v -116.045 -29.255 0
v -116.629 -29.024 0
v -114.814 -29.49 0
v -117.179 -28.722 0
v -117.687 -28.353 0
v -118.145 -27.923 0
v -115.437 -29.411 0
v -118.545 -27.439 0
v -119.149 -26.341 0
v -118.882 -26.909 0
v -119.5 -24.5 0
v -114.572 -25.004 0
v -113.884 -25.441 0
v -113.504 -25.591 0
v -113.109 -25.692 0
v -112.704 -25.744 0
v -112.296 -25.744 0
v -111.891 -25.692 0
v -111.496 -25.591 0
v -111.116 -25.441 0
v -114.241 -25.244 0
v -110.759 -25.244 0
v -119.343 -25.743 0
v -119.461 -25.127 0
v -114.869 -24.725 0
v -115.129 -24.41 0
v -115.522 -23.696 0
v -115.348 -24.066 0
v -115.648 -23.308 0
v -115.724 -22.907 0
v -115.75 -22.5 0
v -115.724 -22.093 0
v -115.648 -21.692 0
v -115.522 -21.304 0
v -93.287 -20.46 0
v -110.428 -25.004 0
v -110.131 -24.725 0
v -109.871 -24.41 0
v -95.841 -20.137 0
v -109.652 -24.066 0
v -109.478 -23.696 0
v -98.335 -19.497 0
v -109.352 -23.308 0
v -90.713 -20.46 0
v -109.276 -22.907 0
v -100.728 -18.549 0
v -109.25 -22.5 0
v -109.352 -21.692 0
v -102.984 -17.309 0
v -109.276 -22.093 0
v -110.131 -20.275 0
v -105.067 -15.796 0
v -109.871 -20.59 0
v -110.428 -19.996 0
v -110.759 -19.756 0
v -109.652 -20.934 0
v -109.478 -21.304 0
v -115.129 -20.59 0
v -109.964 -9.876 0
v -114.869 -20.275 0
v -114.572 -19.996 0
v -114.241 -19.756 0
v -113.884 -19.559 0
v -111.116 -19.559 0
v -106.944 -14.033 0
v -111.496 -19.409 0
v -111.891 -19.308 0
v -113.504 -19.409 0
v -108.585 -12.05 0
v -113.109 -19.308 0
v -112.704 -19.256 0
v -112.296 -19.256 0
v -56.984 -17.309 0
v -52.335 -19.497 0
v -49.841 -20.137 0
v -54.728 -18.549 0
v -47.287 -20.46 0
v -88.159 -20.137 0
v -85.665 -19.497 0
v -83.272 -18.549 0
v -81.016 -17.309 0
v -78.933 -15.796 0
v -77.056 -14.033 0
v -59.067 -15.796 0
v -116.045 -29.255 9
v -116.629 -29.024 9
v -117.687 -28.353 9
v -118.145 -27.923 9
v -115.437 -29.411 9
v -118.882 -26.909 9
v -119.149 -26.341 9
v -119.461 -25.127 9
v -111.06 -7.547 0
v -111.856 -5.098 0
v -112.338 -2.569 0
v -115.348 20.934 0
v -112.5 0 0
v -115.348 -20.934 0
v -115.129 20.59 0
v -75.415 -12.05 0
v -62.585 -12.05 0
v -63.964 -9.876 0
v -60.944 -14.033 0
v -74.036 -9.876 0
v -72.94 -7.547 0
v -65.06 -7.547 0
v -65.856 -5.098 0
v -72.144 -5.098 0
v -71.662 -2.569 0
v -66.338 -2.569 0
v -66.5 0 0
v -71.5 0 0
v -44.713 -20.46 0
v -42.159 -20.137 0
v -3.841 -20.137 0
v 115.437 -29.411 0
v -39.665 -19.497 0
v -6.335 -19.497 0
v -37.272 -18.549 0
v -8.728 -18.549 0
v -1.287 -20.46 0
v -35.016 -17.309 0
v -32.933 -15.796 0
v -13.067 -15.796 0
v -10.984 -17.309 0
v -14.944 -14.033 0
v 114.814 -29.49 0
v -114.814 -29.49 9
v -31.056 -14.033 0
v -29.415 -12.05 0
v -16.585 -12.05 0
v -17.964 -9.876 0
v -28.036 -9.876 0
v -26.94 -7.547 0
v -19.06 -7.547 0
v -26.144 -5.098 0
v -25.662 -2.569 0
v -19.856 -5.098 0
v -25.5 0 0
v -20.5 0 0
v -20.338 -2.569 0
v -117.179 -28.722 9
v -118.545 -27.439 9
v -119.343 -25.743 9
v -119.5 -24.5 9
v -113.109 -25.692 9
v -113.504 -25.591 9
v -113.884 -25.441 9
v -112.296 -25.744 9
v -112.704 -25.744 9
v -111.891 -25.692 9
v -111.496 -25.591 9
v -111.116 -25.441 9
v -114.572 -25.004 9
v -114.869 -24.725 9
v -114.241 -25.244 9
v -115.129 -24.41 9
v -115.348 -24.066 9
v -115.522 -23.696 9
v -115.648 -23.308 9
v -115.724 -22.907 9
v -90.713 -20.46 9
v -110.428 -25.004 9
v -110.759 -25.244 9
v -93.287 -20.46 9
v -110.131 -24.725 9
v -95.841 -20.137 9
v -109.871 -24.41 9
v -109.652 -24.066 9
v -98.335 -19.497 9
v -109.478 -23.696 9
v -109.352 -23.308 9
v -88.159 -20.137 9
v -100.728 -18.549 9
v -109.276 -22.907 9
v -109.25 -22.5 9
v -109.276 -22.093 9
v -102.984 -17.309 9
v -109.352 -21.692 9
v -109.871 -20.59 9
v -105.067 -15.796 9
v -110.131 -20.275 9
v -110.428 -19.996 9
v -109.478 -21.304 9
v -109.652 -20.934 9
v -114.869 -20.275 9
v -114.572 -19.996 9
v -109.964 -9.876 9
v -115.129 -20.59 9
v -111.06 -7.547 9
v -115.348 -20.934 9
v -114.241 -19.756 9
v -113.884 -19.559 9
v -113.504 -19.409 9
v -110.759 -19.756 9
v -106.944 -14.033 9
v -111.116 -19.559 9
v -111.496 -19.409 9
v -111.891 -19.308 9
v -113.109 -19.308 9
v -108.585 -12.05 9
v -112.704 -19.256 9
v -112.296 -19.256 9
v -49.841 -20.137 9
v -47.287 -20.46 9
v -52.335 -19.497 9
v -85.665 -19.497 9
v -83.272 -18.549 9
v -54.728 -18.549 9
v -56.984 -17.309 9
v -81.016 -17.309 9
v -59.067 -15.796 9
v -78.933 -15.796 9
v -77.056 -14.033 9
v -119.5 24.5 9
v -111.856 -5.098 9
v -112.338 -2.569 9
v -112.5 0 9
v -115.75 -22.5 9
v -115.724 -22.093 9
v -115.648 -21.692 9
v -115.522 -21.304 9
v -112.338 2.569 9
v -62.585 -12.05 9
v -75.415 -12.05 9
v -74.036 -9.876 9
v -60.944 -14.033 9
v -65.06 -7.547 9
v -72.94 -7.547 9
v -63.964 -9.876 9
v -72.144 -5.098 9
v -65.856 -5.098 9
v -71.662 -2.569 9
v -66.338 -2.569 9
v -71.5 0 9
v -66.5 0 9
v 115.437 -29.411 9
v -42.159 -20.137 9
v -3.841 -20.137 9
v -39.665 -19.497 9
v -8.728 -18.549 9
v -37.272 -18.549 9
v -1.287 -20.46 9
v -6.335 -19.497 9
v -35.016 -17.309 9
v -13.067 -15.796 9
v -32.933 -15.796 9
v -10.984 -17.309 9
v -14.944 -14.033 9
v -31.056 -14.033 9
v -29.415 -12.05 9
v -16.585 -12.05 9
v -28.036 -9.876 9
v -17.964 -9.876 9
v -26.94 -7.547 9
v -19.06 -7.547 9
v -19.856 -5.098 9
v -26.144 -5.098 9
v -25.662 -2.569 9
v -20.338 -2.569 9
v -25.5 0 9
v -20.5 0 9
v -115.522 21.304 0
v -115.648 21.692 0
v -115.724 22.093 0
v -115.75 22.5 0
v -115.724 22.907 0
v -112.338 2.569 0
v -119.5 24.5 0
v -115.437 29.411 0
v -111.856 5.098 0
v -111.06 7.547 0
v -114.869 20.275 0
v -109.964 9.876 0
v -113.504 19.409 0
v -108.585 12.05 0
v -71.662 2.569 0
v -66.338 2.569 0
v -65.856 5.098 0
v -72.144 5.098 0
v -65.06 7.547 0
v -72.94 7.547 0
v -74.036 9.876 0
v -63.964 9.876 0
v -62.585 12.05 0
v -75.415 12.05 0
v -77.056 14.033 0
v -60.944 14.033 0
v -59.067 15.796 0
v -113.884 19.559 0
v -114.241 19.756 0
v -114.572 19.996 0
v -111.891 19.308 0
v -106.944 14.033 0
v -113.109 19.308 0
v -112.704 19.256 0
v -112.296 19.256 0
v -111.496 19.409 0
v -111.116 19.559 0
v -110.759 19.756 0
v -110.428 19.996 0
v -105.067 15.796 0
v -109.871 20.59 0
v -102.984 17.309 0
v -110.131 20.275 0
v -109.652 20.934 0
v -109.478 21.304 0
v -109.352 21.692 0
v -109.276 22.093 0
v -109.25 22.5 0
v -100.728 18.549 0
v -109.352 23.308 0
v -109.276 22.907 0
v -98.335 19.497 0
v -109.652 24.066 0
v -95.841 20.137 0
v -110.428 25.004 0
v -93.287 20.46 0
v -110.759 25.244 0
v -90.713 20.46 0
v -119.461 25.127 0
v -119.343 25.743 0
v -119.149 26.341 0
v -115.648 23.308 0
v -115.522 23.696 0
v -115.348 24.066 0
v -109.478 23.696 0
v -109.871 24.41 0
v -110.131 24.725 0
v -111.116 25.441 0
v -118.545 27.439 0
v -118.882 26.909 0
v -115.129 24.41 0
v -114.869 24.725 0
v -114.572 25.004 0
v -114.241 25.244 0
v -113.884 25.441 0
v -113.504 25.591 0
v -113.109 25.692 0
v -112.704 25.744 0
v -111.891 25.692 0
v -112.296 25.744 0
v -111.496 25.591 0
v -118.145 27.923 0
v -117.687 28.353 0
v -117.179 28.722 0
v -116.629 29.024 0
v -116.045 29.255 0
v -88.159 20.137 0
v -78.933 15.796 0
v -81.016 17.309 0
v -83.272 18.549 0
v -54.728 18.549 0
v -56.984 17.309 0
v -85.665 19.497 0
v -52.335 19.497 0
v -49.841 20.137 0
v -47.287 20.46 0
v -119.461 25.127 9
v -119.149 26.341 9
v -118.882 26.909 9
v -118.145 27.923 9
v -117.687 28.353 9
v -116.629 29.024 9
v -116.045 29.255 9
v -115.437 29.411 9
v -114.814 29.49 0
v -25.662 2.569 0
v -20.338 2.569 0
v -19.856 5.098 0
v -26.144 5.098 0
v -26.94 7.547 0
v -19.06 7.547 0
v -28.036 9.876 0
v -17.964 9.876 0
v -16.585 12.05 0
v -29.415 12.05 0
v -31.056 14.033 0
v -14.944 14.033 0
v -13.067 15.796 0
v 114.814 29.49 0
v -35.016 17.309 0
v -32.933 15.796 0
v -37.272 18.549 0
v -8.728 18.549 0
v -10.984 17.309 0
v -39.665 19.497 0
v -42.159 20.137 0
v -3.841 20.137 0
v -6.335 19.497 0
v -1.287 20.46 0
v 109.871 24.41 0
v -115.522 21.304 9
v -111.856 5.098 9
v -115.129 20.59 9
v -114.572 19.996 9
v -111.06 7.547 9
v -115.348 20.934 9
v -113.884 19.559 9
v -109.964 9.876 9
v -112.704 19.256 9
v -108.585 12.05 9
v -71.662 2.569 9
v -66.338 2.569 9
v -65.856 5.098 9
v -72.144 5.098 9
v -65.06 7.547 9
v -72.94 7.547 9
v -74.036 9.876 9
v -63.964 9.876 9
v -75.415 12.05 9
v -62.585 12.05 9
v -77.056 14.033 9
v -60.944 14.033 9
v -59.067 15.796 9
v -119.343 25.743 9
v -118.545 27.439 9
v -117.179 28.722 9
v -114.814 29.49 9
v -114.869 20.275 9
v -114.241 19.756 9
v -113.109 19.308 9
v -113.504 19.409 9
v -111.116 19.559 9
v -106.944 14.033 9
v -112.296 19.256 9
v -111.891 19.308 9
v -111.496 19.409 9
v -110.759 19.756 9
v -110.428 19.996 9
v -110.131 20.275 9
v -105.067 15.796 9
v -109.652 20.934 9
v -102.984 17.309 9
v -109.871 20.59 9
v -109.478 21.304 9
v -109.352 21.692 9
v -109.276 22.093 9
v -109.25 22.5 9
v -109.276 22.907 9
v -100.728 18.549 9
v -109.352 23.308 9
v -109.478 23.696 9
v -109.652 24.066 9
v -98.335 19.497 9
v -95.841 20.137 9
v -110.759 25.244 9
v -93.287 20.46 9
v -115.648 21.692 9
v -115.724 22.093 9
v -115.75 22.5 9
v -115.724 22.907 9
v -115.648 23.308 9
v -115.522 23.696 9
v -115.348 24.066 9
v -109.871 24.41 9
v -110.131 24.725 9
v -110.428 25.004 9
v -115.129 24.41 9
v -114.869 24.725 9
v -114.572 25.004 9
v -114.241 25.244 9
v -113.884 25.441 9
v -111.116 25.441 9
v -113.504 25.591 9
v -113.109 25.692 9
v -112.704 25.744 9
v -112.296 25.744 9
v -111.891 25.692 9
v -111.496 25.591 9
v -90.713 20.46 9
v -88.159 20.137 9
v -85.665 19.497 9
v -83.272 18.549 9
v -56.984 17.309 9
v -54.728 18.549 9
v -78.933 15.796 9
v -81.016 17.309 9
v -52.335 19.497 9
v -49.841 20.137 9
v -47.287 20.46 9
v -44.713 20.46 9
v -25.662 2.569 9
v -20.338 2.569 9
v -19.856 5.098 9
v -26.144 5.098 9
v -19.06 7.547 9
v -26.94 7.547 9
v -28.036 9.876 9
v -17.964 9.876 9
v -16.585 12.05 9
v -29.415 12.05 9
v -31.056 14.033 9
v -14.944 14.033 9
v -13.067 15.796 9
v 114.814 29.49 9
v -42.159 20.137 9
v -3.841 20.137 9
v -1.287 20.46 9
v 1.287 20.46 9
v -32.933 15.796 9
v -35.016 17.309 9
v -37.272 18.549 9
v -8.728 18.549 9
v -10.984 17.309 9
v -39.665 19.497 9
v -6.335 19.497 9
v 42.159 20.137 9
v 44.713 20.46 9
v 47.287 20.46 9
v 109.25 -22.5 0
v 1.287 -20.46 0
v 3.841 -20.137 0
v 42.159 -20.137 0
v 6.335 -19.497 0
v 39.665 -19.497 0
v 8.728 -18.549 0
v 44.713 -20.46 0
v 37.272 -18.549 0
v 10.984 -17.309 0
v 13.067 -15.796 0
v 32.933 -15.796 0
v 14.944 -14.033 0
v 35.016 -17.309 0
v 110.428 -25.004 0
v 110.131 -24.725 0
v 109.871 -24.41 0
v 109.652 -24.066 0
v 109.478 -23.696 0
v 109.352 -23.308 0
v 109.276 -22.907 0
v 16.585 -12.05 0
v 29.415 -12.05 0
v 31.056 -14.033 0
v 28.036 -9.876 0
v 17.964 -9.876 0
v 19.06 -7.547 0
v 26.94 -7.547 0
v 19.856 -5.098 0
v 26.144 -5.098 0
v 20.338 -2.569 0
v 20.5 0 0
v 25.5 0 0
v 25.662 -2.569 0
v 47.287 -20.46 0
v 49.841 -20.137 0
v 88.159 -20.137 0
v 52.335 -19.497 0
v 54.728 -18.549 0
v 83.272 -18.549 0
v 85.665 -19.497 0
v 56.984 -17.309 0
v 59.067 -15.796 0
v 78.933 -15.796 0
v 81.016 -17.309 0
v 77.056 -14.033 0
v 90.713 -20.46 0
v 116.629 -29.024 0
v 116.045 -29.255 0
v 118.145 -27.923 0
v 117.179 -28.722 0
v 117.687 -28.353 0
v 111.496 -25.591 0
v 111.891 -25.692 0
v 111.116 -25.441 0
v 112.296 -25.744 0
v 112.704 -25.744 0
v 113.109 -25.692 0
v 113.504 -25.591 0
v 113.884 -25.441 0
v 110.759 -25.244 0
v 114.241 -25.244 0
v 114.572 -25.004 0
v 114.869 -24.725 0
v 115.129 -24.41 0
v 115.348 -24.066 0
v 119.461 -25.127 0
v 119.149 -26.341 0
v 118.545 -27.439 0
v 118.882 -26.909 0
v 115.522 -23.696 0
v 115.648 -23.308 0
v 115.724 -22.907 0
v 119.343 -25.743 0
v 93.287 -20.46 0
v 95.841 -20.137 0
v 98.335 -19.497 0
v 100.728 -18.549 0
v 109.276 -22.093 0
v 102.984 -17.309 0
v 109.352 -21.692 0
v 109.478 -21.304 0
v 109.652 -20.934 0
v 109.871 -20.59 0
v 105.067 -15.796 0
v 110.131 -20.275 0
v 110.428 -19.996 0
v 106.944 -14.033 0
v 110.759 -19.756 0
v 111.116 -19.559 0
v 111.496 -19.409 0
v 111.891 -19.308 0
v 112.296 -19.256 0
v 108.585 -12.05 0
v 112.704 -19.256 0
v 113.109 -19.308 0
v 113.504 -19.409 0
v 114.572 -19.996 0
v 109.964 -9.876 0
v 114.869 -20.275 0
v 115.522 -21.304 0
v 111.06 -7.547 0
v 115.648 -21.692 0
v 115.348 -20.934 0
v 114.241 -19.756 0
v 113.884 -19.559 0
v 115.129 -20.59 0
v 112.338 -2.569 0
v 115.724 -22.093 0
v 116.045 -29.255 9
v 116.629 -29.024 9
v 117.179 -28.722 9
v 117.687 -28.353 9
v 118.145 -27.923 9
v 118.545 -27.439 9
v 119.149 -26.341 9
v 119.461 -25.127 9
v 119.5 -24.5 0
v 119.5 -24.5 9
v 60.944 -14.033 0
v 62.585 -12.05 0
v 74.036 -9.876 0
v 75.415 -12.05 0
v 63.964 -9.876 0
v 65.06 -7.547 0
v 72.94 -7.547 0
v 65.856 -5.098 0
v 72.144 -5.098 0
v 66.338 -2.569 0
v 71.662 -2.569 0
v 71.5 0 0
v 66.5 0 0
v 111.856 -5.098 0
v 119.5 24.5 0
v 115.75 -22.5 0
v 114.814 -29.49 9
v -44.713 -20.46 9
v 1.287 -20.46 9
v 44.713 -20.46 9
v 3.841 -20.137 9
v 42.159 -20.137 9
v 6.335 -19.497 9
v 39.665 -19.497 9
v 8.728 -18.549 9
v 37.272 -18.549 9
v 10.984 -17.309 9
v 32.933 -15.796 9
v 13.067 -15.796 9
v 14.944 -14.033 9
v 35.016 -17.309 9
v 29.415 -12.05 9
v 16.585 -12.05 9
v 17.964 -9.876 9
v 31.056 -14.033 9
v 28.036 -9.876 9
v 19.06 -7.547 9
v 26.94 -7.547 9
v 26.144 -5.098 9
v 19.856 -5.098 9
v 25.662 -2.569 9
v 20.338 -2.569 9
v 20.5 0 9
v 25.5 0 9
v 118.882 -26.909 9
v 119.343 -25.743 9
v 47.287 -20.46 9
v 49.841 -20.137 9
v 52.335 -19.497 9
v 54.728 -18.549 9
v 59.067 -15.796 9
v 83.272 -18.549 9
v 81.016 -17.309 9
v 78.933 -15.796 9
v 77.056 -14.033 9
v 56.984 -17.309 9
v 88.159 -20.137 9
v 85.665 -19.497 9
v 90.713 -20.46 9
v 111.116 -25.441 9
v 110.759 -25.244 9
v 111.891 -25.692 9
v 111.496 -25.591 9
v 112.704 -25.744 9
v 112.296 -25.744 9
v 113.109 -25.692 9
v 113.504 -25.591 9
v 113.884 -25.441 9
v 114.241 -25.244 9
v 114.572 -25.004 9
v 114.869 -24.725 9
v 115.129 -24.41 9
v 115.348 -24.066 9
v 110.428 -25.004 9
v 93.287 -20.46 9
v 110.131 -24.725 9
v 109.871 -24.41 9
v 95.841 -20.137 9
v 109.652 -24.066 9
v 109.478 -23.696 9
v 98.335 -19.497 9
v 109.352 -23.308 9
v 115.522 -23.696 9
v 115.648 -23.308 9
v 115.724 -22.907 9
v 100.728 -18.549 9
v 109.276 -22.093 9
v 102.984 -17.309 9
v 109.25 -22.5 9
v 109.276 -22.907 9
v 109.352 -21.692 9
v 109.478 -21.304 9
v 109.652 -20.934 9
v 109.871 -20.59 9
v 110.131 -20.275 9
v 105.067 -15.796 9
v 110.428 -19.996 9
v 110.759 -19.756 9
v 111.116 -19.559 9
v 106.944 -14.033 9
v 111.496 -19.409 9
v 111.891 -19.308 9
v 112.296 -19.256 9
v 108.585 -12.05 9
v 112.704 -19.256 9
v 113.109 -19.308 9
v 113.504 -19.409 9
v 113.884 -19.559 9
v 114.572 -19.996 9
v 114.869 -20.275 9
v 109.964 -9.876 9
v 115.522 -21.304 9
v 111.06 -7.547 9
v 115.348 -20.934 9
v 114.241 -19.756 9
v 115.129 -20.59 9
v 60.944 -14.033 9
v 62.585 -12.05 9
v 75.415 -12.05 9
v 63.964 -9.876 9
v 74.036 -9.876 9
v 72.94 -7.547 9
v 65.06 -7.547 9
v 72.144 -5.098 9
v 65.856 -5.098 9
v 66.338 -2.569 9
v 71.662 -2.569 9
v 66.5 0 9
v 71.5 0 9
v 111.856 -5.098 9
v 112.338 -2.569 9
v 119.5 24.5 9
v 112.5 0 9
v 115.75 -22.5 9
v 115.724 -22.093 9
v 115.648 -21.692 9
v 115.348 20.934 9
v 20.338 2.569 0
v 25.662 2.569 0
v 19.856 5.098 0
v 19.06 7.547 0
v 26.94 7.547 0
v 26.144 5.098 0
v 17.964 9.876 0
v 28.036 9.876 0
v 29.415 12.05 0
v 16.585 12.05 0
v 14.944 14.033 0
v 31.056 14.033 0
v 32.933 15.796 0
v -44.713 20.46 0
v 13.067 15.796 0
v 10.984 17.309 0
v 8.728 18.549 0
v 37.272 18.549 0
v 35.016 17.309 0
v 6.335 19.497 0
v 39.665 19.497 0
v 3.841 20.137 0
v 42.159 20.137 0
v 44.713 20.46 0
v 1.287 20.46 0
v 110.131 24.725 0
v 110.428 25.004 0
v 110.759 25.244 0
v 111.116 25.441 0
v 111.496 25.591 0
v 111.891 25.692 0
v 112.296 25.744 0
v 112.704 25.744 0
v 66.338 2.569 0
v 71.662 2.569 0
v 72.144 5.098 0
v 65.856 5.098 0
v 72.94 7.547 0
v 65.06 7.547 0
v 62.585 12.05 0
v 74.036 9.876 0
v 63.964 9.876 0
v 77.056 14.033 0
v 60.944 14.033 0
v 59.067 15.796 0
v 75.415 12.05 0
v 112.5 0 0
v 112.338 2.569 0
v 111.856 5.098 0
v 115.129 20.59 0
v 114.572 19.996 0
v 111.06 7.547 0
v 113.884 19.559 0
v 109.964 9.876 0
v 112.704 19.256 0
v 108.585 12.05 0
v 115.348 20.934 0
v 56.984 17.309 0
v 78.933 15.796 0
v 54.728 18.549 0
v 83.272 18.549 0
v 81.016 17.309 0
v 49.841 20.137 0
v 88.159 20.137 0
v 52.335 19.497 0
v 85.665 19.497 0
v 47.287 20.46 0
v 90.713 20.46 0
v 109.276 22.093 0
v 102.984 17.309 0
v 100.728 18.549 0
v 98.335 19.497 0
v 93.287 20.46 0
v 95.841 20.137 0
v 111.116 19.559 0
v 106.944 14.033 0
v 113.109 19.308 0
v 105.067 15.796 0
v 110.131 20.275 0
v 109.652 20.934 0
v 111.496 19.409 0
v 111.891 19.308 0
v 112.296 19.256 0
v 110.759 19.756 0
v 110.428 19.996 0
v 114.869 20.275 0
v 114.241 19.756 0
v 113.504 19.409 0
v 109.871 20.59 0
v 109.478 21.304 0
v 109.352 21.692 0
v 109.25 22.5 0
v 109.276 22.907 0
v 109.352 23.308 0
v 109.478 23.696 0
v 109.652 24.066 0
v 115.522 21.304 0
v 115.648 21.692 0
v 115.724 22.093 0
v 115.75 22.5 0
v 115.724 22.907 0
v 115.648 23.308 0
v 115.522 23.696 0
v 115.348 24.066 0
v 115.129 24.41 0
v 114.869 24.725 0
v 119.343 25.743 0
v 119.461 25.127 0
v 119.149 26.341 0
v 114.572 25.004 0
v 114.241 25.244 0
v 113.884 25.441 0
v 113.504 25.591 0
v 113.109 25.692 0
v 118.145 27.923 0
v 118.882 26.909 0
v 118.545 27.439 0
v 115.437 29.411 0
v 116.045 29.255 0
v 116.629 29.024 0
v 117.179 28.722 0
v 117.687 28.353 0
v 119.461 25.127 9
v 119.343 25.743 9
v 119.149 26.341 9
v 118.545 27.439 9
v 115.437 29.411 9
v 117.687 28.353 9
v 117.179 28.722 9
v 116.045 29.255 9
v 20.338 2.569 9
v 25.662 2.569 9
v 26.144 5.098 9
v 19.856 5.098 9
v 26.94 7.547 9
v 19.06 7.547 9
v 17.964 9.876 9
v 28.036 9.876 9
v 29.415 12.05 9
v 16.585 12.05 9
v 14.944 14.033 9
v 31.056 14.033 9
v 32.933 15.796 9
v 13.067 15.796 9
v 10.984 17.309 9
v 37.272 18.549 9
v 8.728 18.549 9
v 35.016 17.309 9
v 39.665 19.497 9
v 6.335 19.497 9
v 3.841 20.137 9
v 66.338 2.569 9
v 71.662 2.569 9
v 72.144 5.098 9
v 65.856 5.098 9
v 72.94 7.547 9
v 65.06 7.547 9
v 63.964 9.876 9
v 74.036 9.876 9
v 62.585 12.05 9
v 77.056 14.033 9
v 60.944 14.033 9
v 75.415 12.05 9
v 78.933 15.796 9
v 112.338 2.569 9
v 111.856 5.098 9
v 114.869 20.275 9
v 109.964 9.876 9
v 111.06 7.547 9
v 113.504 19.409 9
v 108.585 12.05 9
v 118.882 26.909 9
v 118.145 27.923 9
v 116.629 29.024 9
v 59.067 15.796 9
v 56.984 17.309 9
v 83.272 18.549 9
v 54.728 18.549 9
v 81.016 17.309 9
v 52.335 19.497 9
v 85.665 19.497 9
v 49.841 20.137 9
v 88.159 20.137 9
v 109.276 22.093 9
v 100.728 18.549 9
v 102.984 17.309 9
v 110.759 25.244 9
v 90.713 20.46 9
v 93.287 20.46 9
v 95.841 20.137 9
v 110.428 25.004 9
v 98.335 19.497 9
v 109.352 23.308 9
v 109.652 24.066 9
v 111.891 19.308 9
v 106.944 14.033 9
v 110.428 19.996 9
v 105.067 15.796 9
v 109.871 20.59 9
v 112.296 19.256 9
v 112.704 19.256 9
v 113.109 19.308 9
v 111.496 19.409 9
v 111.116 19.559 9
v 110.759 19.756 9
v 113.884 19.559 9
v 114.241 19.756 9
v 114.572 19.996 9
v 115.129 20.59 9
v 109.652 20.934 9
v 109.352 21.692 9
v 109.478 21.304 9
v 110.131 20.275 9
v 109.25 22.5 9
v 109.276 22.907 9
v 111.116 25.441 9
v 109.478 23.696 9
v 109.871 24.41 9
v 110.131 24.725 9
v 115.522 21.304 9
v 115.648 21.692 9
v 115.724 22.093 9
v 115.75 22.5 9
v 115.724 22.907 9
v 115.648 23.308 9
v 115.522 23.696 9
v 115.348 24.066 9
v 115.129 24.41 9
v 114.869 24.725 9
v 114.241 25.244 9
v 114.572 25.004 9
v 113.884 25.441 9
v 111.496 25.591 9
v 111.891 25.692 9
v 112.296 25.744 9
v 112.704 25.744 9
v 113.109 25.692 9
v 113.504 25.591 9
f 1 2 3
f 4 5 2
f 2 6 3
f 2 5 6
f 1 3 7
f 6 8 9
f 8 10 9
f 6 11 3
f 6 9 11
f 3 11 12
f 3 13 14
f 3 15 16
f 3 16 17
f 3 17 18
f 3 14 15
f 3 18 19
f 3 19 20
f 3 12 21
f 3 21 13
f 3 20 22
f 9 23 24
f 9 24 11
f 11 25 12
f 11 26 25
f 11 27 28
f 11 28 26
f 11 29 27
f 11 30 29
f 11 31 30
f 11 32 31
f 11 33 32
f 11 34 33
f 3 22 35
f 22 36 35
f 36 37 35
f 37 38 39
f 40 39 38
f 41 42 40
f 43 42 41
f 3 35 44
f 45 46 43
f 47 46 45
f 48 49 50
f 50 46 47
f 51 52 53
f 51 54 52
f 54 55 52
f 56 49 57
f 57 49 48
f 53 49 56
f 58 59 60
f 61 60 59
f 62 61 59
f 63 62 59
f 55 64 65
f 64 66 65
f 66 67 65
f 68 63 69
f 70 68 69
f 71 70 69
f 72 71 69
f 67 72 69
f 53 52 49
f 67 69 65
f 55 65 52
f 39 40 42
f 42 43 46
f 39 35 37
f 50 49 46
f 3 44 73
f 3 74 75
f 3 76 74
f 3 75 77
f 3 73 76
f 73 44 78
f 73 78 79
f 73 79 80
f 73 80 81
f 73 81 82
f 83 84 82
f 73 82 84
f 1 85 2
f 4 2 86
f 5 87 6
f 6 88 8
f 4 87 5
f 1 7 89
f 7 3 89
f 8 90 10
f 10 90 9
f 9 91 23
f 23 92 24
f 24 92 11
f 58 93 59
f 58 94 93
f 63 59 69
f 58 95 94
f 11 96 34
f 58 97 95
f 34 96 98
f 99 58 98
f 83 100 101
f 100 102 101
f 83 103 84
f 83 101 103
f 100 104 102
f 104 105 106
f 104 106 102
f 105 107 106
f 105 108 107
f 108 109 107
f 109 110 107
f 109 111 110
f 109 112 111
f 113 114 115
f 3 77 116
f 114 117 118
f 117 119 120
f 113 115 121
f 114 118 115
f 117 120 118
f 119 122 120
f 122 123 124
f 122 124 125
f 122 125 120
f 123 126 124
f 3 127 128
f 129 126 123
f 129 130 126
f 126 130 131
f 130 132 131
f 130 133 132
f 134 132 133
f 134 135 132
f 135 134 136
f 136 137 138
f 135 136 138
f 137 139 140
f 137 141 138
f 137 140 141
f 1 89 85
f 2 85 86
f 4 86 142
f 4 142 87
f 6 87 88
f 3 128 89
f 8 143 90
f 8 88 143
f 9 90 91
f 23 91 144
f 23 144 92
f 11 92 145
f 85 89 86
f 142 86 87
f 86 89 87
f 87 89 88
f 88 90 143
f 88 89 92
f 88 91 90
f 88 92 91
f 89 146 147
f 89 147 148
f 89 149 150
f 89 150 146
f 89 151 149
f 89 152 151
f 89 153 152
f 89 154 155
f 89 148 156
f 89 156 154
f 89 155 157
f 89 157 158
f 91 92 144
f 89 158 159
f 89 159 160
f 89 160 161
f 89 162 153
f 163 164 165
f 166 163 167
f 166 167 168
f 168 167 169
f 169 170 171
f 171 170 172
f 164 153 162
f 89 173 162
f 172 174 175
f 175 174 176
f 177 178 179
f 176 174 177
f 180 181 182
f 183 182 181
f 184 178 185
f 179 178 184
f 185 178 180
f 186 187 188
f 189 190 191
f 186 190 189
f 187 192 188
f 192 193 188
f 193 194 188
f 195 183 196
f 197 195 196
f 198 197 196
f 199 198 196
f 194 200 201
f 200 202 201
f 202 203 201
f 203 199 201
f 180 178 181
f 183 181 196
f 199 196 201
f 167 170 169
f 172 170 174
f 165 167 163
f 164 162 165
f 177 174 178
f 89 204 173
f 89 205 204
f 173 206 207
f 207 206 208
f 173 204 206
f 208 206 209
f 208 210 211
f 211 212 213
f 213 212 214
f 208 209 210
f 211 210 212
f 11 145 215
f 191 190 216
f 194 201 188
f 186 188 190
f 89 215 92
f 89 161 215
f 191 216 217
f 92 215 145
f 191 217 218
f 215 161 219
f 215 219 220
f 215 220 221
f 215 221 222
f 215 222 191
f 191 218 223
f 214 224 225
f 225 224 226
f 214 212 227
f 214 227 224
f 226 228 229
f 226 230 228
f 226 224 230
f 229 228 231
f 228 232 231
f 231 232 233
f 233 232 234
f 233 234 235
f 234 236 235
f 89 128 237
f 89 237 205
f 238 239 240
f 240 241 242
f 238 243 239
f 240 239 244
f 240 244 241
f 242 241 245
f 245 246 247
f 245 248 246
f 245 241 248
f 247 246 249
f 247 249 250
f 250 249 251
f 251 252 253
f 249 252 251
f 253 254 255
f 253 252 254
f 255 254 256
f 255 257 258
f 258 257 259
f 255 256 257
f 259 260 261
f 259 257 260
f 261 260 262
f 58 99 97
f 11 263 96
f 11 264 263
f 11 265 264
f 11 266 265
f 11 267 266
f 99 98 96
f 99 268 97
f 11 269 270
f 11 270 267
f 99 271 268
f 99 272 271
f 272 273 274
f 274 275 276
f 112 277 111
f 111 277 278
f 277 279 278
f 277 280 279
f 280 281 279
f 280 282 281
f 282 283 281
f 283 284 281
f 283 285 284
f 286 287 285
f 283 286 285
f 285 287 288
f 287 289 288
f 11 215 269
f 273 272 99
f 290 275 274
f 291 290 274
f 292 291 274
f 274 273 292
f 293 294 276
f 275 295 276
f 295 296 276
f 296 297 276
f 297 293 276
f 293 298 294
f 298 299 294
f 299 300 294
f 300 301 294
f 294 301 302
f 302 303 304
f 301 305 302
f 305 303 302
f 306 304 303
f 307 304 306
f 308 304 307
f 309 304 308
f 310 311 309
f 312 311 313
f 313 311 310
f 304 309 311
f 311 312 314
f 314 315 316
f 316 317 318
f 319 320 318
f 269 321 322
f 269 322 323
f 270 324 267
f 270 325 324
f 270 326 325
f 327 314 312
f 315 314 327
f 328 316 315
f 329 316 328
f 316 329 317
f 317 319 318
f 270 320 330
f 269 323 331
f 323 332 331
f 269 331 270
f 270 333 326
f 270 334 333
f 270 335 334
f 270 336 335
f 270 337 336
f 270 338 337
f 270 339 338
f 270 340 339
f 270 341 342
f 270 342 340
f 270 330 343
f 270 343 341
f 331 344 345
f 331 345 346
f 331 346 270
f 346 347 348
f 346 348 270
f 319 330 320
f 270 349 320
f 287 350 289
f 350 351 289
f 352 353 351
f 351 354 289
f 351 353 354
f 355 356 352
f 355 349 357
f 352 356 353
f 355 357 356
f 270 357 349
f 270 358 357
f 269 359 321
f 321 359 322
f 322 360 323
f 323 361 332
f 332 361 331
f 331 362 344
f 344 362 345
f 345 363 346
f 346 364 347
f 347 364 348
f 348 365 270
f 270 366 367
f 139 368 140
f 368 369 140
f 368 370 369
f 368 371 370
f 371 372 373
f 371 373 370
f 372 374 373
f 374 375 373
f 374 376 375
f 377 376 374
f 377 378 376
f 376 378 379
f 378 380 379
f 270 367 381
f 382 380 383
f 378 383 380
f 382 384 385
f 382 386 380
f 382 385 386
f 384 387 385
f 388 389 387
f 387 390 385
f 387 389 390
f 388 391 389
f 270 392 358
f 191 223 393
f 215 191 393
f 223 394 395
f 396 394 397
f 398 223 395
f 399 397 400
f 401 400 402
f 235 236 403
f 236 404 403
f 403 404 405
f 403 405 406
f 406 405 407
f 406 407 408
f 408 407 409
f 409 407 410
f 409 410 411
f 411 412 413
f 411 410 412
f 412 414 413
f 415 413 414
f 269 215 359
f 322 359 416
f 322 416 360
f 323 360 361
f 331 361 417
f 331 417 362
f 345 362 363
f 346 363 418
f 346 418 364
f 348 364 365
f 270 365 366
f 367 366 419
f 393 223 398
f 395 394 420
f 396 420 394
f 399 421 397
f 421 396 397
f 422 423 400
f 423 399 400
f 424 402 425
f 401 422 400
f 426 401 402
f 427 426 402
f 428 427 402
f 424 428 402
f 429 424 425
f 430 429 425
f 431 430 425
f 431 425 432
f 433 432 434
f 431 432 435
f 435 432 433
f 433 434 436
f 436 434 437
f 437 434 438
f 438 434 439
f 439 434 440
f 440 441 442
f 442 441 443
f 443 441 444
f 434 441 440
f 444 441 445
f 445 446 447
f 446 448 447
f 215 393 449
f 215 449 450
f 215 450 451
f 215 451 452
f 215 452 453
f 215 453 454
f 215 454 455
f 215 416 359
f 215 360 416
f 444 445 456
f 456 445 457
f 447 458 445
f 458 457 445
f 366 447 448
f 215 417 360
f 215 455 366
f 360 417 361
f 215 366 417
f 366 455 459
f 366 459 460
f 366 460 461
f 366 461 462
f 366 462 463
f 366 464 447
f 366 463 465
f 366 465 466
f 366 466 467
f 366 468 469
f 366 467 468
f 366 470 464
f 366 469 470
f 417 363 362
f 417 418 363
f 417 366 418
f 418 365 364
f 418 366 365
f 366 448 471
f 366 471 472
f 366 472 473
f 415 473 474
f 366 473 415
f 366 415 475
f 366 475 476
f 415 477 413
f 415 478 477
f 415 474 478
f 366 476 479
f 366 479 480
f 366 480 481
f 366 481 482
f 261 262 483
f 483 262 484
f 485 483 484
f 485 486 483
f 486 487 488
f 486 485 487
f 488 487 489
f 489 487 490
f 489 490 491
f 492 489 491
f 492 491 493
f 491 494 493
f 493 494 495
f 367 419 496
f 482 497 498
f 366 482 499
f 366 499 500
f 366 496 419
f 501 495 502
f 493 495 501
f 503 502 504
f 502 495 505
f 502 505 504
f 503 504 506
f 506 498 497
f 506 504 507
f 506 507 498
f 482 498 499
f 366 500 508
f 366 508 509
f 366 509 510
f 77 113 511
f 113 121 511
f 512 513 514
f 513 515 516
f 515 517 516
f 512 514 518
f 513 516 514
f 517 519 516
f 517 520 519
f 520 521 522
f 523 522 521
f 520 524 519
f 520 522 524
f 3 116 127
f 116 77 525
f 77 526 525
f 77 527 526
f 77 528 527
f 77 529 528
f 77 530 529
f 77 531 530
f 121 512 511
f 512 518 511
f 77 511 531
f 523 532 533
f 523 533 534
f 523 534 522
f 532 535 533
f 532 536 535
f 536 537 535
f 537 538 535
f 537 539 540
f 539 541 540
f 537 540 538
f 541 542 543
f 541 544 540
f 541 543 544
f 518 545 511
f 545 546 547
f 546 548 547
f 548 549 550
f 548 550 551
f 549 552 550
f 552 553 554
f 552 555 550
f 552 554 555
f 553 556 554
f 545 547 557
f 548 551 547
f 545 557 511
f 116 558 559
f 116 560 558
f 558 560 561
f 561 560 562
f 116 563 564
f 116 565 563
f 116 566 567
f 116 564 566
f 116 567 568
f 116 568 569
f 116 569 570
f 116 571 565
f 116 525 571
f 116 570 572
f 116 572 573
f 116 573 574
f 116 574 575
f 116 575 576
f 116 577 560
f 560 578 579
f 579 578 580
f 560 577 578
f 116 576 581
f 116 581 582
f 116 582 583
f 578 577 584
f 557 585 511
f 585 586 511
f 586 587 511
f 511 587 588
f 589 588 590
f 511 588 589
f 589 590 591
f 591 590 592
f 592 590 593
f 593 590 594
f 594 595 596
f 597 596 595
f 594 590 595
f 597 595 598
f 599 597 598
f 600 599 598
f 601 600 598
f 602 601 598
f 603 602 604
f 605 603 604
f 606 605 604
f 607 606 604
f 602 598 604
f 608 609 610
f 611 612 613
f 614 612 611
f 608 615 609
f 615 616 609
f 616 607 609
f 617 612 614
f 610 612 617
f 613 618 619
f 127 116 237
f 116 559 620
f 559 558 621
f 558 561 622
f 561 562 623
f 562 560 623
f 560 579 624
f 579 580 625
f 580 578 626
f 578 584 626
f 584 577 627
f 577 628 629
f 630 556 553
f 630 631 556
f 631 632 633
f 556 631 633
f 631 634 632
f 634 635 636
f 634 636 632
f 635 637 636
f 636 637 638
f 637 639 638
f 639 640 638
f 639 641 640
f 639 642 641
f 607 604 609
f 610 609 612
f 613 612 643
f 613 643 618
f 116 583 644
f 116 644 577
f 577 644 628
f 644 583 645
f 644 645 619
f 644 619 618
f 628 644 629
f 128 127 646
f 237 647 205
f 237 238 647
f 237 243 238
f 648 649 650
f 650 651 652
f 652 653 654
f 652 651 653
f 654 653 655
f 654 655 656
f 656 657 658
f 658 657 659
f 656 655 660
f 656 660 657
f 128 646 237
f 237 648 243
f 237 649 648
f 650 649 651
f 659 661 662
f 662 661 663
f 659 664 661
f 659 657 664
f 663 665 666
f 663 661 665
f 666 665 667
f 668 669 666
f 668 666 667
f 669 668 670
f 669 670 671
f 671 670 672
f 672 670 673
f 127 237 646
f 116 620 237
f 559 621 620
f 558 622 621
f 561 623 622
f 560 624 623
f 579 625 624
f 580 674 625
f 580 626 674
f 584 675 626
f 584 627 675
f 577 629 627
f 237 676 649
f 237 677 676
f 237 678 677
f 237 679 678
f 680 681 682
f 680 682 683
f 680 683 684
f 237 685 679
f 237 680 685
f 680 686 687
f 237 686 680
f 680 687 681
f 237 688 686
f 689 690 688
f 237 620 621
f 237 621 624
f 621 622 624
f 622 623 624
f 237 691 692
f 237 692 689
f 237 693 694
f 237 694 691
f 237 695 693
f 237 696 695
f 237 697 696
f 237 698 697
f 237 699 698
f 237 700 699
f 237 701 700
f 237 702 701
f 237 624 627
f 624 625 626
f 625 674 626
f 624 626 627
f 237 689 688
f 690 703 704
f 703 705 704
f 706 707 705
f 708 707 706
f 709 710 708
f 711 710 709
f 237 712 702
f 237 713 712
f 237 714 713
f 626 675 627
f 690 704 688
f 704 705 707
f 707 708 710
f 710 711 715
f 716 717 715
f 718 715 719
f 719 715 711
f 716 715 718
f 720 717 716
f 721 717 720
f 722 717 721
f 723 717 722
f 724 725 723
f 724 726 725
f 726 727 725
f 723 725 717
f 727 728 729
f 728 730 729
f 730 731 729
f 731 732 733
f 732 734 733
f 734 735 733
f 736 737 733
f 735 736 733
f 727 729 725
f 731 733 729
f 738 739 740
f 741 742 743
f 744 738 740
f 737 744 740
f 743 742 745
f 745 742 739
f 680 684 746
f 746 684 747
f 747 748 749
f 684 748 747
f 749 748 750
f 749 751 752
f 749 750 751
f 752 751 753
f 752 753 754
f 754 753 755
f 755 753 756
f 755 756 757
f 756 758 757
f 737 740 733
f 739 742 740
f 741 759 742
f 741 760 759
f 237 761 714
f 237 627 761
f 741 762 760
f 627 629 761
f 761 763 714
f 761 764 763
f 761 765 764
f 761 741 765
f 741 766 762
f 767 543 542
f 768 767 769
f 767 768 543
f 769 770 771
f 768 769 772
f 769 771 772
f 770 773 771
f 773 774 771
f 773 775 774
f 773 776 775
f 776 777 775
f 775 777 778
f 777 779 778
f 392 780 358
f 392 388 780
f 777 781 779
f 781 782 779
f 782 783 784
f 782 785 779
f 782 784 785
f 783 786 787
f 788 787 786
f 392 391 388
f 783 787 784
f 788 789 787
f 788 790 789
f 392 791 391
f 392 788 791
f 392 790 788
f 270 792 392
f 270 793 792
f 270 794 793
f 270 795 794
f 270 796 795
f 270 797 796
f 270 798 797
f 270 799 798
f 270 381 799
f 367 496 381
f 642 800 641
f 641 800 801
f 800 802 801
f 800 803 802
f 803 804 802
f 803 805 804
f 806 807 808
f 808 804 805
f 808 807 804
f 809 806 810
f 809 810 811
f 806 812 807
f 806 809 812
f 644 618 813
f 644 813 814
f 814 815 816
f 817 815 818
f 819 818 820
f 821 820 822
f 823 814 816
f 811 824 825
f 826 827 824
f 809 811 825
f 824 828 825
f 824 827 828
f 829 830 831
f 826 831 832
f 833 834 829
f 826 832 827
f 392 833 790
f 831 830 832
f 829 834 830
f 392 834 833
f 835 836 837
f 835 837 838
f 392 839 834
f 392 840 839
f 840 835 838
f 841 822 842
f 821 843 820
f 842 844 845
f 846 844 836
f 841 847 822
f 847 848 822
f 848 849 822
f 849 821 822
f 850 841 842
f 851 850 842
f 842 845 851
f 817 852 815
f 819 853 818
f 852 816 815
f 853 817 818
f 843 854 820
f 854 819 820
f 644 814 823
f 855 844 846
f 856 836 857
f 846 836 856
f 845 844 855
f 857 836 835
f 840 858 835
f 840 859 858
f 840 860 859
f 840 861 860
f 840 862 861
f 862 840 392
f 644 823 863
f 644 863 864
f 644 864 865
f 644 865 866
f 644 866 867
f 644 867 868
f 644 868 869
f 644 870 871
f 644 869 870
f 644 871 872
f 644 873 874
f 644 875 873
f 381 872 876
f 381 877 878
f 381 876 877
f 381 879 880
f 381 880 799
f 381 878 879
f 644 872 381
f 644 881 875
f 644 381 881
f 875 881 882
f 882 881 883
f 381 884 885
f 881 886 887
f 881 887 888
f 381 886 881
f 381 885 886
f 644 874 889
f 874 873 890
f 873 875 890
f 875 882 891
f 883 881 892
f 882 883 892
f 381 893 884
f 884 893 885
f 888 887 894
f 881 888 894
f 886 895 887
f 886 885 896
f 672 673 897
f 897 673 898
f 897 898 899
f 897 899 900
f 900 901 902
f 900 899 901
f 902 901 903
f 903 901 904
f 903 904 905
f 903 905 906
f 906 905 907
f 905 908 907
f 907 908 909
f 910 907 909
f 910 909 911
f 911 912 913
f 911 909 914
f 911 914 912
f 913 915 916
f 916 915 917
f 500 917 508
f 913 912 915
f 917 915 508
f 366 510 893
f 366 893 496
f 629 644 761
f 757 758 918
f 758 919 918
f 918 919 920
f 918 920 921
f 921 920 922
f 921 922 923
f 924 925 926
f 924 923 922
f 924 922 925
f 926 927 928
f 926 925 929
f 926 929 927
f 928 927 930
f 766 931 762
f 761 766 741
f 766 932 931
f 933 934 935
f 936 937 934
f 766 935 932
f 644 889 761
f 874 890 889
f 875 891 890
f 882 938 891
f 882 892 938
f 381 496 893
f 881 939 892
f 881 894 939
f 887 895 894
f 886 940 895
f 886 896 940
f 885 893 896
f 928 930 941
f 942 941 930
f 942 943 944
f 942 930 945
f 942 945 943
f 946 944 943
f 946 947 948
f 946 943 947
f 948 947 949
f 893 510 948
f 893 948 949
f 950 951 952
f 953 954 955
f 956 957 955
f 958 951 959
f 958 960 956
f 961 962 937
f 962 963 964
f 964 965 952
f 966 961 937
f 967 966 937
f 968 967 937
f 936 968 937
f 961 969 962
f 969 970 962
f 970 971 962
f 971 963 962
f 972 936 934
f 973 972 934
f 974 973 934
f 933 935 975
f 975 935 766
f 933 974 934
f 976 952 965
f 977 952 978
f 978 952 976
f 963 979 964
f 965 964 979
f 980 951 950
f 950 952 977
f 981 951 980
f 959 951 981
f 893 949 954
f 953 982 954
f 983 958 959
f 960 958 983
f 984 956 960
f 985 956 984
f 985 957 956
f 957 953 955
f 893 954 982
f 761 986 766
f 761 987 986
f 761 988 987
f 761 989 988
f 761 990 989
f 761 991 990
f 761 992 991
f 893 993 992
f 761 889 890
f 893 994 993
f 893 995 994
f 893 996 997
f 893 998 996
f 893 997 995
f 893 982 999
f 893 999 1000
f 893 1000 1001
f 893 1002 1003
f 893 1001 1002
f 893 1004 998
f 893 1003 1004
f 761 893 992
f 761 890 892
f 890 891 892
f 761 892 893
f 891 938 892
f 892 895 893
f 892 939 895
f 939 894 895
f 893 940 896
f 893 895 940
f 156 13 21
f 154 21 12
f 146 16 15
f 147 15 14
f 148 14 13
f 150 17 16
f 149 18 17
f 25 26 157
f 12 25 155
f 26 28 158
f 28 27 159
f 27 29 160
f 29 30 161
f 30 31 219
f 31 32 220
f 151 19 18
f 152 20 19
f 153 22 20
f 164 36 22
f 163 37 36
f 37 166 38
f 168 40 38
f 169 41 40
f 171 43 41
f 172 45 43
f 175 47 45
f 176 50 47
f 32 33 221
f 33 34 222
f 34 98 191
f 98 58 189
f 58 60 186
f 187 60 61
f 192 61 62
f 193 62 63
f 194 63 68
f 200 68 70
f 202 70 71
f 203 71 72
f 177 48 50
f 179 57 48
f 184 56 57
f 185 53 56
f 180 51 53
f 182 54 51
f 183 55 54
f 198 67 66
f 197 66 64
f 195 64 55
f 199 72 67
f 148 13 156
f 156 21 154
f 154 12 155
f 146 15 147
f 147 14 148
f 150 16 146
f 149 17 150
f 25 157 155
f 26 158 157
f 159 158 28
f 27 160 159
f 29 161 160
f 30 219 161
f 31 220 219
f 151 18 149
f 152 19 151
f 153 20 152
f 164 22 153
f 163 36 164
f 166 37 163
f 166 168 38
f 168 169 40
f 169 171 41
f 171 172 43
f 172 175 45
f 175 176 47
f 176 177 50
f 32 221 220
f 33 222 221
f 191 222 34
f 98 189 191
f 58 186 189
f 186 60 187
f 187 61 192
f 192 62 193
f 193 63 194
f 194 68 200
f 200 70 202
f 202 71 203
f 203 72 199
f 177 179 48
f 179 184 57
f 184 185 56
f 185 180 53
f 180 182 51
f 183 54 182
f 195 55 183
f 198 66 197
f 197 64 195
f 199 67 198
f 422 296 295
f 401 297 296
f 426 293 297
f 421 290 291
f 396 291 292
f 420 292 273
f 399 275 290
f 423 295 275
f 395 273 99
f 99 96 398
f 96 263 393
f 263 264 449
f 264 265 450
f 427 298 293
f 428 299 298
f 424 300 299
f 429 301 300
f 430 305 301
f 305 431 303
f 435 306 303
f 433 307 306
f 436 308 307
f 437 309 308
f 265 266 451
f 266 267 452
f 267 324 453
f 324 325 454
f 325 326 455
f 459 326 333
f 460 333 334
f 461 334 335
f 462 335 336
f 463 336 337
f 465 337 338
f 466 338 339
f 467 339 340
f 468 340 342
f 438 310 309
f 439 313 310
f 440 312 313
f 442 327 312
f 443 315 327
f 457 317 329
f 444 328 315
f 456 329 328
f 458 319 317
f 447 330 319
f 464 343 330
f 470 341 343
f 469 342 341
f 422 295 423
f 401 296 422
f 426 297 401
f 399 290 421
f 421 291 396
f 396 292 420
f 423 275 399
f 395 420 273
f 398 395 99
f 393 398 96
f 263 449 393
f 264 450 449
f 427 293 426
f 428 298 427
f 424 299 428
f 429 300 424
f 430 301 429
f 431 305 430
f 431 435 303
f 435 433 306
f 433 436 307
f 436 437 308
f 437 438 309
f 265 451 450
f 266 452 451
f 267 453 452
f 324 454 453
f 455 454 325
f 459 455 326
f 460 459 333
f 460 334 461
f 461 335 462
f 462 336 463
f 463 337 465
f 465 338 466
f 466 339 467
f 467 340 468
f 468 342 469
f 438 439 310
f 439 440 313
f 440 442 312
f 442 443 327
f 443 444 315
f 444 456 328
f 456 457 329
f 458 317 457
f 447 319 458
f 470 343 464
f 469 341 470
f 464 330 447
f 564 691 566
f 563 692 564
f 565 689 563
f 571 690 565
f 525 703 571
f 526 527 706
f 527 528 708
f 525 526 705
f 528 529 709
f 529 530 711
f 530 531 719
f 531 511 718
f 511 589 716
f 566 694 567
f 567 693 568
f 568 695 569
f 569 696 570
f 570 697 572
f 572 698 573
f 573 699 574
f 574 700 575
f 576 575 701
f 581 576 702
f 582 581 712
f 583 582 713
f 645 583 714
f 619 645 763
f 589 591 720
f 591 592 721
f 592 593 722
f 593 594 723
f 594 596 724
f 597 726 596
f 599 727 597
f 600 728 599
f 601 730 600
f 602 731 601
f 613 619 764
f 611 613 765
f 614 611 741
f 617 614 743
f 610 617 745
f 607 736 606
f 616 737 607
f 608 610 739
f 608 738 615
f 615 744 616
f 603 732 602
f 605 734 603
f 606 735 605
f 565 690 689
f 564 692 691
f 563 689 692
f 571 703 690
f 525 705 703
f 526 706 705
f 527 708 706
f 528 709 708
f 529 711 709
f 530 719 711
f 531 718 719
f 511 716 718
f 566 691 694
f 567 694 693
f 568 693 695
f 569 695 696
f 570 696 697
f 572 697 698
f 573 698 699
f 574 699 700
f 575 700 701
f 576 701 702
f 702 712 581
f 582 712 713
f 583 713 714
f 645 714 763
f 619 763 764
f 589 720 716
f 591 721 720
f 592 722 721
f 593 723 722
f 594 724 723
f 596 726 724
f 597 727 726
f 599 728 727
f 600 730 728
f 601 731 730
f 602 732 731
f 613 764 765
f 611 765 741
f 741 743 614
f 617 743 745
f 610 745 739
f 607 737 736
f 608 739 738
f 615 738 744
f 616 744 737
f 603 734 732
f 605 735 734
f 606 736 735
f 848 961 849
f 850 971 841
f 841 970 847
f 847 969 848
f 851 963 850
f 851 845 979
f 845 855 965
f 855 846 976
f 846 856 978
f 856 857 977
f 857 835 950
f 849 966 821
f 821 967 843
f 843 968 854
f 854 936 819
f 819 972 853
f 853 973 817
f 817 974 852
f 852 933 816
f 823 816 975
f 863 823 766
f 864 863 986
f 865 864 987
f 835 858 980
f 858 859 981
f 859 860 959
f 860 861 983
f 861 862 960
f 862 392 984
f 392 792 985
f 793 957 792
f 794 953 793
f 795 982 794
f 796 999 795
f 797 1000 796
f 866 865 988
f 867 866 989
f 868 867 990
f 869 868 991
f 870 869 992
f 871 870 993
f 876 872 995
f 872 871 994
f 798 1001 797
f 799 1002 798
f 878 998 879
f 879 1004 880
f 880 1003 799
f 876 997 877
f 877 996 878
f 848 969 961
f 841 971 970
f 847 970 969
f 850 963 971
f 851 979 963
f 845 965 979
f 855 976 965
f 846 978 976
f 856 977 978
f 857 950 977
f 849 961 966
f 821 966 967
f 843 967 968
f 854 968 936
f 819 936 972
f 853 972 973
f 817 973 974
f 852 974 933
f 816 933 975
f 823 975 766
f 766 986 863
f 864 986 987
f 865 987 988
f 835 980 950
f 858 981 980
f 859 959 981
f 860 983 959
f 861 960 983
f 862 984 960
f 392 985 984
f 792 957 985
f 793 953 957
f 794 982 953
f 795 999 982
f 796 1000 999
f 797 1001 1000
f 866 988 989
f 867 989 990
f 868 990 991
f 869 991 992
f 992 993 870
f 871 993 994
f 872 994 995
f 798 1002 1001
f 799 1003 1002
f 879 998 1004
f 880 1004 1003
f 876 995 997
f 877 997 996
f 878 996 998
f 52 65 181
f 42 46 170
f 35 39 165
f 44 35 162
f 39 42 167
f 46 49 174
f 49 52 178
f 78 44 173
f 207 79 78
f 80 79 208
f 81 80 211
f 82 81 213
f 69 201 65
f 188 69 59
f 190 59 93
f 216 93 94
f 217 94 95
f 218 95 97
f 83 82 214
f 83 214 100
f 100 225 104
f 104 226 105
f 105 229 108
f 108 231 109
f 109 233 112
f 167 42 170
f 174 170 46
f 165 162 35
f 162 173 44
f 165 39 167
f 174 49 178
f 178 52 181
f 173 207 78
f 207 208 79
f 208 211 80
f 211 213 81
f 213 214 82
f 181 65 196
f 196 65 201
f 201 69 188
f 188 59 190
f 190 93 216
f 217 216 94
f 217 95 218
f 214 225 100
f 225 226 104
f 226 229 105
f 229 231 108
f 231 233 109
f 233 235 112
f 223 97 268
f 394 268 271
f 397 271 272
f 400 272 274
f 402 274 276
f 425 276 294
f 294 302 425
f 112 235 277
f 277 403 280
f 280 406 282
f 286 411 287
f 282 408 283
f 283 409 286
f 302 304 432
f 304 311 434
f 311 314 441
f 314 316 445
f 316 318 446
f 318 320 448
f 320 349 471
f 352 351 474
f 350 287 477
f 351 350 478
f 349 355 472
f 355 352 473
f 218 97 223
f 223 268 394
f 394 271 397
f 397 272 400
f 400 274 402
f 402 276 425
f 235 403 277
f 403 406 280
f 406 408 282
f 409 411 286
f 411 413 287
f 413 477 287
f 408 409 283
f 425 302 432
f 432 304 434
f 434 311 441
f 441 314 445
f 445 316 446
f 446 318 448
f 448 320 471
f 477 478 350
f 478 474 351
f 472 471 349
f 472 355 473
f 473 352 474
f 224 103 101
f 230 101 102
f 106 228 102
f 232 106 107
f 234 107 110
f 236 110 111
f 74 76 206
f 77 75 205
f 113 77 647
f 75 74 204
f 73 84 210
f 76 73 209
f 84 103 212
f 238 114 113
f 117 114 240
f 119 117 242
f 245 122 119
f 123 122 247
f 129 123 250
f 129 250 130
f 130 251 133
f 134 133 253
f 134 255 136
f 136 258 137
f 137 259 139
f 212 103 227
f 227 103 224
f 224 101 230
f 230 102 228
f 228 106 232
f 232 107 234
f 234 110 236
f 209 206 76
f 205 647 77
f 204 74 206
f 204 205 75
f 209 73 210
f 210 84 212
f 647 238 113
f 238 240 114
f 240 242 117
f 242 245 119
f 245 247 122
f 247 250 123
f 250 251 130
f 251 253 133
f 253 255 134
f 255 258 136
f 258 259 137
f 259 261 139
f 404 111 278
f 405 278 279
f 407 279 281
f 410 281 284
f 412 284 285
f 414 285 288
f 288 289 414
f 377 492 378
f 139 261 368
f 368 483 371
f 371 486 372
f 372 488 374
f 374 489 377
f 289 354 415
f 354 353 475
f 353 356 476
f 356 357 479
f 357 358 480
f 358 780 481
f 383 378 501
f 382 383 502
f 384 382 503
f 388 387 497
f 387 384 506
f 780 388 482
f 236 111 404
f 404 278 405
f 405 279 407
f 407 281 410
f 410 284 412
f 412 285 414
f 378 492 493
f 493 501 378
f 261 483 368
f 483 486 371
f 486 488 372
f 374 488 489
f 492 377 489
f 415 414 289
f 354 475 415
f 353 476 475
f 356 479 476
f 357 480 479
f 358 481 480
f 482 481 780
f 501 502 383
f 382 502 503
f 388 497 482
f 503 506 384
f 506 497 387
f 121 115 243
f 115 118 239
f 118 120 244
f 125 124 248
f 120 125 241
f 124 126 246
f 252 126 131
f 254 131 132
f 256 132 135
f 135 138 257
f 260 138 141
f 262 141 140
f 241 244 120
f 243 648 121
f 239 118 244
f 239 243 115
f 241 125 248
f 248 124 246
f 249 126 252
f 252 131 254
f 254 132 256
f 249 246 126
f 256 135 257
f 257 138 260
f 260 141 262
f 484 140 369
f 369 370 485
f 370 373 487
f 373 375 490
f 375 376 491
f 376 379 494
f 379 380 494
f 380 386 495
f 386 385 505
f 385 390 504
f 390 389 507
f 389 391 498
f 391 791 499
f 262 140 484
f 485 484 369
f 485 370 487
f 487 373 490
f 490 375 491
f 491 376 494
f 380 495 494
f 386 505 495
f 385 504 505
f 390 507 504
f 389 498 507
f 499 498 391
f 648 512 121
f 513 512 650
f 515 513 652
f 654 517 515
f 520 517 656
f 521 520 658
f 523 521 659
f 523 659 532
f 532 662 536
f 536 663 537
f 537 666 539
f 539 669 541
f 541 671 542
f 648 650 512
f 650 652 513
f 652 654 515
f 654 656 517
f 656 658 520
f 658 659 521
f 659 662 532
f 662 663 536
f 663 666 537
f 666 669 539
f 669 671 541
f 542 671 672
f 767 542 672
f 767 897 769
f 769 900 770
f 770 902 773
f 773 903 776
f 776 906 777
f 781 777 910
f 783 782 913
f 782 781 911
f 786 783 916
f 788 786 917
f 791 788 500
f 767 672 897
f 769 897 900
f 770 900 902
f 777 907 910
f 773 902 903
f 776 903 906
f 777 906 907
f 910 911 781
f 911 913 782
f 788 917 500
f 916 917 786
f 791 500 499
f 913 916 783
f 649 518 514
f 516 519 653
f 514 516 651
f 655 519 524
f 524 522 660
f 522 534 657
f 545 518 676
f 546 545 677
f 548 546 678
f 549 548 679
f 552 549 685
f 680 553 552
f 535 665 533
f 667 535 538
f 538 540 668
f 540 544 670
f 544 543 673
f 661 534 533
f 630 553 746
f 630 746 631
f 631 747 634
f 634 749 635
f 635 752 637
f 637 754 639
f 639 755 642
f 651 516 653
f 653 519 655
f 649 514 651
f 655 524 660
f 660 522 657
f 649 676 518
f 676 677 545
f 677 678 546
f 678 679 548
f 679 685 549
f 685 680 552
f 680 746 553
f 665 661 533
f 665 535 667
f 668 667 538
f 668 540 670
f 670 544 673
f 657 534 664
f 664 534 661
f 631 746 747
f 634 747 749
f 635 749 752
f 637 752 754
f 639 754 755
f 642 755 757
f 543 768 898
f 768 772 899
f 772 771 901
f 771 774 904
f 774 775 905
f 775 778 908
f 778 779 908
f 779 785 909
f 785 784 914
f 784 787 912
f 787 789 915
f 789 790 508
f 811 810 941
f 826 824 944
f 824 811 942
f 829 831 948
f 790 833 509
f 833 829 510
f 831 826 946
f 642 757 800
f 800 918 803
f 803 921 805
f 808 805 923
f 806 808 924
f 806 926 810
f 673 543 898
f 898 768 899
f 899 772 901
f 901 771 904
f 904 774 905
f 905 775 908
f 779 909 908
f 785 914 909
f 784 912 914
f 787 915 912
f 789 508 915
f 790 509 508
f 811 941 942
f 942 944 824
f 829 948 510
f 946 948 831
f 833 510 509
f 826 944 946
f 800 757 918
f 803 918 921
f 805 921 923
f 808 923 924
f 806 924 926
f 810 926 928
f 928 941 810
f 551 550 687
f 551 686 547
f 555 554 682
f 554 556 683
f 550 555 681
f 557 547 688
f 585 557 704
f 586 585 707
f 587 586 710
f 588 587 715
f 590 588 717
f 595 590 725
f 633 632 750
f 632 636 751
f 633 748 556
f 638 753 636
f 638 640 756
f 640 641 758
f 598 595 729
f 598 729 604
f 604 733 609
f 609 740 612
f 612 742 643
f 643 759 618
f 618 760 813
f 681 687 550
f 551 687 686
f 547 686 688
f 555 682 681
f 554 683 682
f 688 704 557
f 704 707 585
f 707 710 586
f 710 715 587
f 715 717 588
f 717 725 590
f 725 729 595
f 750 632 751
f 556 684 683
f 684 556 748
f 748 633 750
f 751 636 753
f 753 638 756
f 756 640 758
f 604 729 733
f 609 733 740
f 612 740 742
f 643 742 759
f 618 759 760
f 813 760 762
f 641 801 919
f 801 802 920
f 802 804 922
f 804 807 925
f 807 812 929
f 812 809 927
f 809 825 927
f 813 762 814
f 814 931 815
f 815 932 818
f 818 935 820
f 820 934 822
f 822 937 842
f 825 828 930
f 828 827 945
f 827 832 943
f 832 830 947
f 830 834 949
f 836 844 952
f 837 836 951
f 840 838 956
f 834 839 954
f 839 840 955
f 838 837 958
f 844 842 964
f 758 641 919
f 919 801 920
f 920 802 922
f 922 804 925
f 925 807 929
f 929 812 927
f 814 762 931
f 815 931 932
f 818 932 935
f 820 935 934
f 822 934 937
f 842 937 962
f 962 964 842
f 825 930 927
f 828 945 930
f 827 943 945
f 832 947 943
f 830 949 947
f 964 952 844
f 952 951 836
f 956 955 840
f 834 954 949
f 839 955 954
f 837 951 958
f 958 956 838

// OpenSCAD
$fn = 50;

difference() {
	union() {
		hull() {
			translate(v = [-114.5, 24.5, 0]) {
				cylinder(h = 9, r = 5);
			}
			translate(v = [114.5, 24.5, 0]) {
				cylinder(h = 9, r = 5);
			}
			translate(v = [-114.5, -24.5, 0]) {
				cylinder(h = 9, r = 5);
			}
			translate(v = [114.5, -24.5, 0]) {
				cylinder(h = 9, r = 5);
			}
		}
	}
	union() {
		translate(v = [-112.5, -22.5, -100.0]) {
			cylinder(h = 200, r = 3.25);
		}
		translate(v = [-112.5, 22.5, -100.0]) {
			cylinder(h = 200, r = 3.25);
		}
		translate(v = [112.5, -22.5, -100.0]) {
			cylinder(h = 200, r = 3.25);
		}
		translate(v = [112.5, 22.5, -100.0]) {
			cylinder(h = 200, r = 3.25);
		}
		translate(v = [-112.5, -22.5, -100.0]) {
			cylinder(h = 200, r = 1.8);
		}
		translate(v = [-112.5, 22.5, -100.0]) {
			cylinder(h = 200, r = 1.8);
		}
		translate(v = [112.5, -22.5, -100.0]) {
			cylinder(h = 200, r = 1.8);
		}
		translate(v = [112.5, 22.5, -100.0]) {
			cylinder(h = 200, r = 1.8);
		}
		translate(v = [-92.0, 0, 0.0]) {
			cylinder(h = 9, r = 20.5);
		}
		translate(v = [-46.0, 0, 0.0]) {
			cylinder(h = 9, r = 20.5);
		}
		cylinder(h = 9, r = 20.5);
		translate(v = [46.0, 0, 0.0]) {
			cylinder(h = 9, r = 20.5);
		}
		translate(v = [92.0, 0, 0.0]) {
			cylinder(h = 9, r = 20.5);
		}
	}
}
